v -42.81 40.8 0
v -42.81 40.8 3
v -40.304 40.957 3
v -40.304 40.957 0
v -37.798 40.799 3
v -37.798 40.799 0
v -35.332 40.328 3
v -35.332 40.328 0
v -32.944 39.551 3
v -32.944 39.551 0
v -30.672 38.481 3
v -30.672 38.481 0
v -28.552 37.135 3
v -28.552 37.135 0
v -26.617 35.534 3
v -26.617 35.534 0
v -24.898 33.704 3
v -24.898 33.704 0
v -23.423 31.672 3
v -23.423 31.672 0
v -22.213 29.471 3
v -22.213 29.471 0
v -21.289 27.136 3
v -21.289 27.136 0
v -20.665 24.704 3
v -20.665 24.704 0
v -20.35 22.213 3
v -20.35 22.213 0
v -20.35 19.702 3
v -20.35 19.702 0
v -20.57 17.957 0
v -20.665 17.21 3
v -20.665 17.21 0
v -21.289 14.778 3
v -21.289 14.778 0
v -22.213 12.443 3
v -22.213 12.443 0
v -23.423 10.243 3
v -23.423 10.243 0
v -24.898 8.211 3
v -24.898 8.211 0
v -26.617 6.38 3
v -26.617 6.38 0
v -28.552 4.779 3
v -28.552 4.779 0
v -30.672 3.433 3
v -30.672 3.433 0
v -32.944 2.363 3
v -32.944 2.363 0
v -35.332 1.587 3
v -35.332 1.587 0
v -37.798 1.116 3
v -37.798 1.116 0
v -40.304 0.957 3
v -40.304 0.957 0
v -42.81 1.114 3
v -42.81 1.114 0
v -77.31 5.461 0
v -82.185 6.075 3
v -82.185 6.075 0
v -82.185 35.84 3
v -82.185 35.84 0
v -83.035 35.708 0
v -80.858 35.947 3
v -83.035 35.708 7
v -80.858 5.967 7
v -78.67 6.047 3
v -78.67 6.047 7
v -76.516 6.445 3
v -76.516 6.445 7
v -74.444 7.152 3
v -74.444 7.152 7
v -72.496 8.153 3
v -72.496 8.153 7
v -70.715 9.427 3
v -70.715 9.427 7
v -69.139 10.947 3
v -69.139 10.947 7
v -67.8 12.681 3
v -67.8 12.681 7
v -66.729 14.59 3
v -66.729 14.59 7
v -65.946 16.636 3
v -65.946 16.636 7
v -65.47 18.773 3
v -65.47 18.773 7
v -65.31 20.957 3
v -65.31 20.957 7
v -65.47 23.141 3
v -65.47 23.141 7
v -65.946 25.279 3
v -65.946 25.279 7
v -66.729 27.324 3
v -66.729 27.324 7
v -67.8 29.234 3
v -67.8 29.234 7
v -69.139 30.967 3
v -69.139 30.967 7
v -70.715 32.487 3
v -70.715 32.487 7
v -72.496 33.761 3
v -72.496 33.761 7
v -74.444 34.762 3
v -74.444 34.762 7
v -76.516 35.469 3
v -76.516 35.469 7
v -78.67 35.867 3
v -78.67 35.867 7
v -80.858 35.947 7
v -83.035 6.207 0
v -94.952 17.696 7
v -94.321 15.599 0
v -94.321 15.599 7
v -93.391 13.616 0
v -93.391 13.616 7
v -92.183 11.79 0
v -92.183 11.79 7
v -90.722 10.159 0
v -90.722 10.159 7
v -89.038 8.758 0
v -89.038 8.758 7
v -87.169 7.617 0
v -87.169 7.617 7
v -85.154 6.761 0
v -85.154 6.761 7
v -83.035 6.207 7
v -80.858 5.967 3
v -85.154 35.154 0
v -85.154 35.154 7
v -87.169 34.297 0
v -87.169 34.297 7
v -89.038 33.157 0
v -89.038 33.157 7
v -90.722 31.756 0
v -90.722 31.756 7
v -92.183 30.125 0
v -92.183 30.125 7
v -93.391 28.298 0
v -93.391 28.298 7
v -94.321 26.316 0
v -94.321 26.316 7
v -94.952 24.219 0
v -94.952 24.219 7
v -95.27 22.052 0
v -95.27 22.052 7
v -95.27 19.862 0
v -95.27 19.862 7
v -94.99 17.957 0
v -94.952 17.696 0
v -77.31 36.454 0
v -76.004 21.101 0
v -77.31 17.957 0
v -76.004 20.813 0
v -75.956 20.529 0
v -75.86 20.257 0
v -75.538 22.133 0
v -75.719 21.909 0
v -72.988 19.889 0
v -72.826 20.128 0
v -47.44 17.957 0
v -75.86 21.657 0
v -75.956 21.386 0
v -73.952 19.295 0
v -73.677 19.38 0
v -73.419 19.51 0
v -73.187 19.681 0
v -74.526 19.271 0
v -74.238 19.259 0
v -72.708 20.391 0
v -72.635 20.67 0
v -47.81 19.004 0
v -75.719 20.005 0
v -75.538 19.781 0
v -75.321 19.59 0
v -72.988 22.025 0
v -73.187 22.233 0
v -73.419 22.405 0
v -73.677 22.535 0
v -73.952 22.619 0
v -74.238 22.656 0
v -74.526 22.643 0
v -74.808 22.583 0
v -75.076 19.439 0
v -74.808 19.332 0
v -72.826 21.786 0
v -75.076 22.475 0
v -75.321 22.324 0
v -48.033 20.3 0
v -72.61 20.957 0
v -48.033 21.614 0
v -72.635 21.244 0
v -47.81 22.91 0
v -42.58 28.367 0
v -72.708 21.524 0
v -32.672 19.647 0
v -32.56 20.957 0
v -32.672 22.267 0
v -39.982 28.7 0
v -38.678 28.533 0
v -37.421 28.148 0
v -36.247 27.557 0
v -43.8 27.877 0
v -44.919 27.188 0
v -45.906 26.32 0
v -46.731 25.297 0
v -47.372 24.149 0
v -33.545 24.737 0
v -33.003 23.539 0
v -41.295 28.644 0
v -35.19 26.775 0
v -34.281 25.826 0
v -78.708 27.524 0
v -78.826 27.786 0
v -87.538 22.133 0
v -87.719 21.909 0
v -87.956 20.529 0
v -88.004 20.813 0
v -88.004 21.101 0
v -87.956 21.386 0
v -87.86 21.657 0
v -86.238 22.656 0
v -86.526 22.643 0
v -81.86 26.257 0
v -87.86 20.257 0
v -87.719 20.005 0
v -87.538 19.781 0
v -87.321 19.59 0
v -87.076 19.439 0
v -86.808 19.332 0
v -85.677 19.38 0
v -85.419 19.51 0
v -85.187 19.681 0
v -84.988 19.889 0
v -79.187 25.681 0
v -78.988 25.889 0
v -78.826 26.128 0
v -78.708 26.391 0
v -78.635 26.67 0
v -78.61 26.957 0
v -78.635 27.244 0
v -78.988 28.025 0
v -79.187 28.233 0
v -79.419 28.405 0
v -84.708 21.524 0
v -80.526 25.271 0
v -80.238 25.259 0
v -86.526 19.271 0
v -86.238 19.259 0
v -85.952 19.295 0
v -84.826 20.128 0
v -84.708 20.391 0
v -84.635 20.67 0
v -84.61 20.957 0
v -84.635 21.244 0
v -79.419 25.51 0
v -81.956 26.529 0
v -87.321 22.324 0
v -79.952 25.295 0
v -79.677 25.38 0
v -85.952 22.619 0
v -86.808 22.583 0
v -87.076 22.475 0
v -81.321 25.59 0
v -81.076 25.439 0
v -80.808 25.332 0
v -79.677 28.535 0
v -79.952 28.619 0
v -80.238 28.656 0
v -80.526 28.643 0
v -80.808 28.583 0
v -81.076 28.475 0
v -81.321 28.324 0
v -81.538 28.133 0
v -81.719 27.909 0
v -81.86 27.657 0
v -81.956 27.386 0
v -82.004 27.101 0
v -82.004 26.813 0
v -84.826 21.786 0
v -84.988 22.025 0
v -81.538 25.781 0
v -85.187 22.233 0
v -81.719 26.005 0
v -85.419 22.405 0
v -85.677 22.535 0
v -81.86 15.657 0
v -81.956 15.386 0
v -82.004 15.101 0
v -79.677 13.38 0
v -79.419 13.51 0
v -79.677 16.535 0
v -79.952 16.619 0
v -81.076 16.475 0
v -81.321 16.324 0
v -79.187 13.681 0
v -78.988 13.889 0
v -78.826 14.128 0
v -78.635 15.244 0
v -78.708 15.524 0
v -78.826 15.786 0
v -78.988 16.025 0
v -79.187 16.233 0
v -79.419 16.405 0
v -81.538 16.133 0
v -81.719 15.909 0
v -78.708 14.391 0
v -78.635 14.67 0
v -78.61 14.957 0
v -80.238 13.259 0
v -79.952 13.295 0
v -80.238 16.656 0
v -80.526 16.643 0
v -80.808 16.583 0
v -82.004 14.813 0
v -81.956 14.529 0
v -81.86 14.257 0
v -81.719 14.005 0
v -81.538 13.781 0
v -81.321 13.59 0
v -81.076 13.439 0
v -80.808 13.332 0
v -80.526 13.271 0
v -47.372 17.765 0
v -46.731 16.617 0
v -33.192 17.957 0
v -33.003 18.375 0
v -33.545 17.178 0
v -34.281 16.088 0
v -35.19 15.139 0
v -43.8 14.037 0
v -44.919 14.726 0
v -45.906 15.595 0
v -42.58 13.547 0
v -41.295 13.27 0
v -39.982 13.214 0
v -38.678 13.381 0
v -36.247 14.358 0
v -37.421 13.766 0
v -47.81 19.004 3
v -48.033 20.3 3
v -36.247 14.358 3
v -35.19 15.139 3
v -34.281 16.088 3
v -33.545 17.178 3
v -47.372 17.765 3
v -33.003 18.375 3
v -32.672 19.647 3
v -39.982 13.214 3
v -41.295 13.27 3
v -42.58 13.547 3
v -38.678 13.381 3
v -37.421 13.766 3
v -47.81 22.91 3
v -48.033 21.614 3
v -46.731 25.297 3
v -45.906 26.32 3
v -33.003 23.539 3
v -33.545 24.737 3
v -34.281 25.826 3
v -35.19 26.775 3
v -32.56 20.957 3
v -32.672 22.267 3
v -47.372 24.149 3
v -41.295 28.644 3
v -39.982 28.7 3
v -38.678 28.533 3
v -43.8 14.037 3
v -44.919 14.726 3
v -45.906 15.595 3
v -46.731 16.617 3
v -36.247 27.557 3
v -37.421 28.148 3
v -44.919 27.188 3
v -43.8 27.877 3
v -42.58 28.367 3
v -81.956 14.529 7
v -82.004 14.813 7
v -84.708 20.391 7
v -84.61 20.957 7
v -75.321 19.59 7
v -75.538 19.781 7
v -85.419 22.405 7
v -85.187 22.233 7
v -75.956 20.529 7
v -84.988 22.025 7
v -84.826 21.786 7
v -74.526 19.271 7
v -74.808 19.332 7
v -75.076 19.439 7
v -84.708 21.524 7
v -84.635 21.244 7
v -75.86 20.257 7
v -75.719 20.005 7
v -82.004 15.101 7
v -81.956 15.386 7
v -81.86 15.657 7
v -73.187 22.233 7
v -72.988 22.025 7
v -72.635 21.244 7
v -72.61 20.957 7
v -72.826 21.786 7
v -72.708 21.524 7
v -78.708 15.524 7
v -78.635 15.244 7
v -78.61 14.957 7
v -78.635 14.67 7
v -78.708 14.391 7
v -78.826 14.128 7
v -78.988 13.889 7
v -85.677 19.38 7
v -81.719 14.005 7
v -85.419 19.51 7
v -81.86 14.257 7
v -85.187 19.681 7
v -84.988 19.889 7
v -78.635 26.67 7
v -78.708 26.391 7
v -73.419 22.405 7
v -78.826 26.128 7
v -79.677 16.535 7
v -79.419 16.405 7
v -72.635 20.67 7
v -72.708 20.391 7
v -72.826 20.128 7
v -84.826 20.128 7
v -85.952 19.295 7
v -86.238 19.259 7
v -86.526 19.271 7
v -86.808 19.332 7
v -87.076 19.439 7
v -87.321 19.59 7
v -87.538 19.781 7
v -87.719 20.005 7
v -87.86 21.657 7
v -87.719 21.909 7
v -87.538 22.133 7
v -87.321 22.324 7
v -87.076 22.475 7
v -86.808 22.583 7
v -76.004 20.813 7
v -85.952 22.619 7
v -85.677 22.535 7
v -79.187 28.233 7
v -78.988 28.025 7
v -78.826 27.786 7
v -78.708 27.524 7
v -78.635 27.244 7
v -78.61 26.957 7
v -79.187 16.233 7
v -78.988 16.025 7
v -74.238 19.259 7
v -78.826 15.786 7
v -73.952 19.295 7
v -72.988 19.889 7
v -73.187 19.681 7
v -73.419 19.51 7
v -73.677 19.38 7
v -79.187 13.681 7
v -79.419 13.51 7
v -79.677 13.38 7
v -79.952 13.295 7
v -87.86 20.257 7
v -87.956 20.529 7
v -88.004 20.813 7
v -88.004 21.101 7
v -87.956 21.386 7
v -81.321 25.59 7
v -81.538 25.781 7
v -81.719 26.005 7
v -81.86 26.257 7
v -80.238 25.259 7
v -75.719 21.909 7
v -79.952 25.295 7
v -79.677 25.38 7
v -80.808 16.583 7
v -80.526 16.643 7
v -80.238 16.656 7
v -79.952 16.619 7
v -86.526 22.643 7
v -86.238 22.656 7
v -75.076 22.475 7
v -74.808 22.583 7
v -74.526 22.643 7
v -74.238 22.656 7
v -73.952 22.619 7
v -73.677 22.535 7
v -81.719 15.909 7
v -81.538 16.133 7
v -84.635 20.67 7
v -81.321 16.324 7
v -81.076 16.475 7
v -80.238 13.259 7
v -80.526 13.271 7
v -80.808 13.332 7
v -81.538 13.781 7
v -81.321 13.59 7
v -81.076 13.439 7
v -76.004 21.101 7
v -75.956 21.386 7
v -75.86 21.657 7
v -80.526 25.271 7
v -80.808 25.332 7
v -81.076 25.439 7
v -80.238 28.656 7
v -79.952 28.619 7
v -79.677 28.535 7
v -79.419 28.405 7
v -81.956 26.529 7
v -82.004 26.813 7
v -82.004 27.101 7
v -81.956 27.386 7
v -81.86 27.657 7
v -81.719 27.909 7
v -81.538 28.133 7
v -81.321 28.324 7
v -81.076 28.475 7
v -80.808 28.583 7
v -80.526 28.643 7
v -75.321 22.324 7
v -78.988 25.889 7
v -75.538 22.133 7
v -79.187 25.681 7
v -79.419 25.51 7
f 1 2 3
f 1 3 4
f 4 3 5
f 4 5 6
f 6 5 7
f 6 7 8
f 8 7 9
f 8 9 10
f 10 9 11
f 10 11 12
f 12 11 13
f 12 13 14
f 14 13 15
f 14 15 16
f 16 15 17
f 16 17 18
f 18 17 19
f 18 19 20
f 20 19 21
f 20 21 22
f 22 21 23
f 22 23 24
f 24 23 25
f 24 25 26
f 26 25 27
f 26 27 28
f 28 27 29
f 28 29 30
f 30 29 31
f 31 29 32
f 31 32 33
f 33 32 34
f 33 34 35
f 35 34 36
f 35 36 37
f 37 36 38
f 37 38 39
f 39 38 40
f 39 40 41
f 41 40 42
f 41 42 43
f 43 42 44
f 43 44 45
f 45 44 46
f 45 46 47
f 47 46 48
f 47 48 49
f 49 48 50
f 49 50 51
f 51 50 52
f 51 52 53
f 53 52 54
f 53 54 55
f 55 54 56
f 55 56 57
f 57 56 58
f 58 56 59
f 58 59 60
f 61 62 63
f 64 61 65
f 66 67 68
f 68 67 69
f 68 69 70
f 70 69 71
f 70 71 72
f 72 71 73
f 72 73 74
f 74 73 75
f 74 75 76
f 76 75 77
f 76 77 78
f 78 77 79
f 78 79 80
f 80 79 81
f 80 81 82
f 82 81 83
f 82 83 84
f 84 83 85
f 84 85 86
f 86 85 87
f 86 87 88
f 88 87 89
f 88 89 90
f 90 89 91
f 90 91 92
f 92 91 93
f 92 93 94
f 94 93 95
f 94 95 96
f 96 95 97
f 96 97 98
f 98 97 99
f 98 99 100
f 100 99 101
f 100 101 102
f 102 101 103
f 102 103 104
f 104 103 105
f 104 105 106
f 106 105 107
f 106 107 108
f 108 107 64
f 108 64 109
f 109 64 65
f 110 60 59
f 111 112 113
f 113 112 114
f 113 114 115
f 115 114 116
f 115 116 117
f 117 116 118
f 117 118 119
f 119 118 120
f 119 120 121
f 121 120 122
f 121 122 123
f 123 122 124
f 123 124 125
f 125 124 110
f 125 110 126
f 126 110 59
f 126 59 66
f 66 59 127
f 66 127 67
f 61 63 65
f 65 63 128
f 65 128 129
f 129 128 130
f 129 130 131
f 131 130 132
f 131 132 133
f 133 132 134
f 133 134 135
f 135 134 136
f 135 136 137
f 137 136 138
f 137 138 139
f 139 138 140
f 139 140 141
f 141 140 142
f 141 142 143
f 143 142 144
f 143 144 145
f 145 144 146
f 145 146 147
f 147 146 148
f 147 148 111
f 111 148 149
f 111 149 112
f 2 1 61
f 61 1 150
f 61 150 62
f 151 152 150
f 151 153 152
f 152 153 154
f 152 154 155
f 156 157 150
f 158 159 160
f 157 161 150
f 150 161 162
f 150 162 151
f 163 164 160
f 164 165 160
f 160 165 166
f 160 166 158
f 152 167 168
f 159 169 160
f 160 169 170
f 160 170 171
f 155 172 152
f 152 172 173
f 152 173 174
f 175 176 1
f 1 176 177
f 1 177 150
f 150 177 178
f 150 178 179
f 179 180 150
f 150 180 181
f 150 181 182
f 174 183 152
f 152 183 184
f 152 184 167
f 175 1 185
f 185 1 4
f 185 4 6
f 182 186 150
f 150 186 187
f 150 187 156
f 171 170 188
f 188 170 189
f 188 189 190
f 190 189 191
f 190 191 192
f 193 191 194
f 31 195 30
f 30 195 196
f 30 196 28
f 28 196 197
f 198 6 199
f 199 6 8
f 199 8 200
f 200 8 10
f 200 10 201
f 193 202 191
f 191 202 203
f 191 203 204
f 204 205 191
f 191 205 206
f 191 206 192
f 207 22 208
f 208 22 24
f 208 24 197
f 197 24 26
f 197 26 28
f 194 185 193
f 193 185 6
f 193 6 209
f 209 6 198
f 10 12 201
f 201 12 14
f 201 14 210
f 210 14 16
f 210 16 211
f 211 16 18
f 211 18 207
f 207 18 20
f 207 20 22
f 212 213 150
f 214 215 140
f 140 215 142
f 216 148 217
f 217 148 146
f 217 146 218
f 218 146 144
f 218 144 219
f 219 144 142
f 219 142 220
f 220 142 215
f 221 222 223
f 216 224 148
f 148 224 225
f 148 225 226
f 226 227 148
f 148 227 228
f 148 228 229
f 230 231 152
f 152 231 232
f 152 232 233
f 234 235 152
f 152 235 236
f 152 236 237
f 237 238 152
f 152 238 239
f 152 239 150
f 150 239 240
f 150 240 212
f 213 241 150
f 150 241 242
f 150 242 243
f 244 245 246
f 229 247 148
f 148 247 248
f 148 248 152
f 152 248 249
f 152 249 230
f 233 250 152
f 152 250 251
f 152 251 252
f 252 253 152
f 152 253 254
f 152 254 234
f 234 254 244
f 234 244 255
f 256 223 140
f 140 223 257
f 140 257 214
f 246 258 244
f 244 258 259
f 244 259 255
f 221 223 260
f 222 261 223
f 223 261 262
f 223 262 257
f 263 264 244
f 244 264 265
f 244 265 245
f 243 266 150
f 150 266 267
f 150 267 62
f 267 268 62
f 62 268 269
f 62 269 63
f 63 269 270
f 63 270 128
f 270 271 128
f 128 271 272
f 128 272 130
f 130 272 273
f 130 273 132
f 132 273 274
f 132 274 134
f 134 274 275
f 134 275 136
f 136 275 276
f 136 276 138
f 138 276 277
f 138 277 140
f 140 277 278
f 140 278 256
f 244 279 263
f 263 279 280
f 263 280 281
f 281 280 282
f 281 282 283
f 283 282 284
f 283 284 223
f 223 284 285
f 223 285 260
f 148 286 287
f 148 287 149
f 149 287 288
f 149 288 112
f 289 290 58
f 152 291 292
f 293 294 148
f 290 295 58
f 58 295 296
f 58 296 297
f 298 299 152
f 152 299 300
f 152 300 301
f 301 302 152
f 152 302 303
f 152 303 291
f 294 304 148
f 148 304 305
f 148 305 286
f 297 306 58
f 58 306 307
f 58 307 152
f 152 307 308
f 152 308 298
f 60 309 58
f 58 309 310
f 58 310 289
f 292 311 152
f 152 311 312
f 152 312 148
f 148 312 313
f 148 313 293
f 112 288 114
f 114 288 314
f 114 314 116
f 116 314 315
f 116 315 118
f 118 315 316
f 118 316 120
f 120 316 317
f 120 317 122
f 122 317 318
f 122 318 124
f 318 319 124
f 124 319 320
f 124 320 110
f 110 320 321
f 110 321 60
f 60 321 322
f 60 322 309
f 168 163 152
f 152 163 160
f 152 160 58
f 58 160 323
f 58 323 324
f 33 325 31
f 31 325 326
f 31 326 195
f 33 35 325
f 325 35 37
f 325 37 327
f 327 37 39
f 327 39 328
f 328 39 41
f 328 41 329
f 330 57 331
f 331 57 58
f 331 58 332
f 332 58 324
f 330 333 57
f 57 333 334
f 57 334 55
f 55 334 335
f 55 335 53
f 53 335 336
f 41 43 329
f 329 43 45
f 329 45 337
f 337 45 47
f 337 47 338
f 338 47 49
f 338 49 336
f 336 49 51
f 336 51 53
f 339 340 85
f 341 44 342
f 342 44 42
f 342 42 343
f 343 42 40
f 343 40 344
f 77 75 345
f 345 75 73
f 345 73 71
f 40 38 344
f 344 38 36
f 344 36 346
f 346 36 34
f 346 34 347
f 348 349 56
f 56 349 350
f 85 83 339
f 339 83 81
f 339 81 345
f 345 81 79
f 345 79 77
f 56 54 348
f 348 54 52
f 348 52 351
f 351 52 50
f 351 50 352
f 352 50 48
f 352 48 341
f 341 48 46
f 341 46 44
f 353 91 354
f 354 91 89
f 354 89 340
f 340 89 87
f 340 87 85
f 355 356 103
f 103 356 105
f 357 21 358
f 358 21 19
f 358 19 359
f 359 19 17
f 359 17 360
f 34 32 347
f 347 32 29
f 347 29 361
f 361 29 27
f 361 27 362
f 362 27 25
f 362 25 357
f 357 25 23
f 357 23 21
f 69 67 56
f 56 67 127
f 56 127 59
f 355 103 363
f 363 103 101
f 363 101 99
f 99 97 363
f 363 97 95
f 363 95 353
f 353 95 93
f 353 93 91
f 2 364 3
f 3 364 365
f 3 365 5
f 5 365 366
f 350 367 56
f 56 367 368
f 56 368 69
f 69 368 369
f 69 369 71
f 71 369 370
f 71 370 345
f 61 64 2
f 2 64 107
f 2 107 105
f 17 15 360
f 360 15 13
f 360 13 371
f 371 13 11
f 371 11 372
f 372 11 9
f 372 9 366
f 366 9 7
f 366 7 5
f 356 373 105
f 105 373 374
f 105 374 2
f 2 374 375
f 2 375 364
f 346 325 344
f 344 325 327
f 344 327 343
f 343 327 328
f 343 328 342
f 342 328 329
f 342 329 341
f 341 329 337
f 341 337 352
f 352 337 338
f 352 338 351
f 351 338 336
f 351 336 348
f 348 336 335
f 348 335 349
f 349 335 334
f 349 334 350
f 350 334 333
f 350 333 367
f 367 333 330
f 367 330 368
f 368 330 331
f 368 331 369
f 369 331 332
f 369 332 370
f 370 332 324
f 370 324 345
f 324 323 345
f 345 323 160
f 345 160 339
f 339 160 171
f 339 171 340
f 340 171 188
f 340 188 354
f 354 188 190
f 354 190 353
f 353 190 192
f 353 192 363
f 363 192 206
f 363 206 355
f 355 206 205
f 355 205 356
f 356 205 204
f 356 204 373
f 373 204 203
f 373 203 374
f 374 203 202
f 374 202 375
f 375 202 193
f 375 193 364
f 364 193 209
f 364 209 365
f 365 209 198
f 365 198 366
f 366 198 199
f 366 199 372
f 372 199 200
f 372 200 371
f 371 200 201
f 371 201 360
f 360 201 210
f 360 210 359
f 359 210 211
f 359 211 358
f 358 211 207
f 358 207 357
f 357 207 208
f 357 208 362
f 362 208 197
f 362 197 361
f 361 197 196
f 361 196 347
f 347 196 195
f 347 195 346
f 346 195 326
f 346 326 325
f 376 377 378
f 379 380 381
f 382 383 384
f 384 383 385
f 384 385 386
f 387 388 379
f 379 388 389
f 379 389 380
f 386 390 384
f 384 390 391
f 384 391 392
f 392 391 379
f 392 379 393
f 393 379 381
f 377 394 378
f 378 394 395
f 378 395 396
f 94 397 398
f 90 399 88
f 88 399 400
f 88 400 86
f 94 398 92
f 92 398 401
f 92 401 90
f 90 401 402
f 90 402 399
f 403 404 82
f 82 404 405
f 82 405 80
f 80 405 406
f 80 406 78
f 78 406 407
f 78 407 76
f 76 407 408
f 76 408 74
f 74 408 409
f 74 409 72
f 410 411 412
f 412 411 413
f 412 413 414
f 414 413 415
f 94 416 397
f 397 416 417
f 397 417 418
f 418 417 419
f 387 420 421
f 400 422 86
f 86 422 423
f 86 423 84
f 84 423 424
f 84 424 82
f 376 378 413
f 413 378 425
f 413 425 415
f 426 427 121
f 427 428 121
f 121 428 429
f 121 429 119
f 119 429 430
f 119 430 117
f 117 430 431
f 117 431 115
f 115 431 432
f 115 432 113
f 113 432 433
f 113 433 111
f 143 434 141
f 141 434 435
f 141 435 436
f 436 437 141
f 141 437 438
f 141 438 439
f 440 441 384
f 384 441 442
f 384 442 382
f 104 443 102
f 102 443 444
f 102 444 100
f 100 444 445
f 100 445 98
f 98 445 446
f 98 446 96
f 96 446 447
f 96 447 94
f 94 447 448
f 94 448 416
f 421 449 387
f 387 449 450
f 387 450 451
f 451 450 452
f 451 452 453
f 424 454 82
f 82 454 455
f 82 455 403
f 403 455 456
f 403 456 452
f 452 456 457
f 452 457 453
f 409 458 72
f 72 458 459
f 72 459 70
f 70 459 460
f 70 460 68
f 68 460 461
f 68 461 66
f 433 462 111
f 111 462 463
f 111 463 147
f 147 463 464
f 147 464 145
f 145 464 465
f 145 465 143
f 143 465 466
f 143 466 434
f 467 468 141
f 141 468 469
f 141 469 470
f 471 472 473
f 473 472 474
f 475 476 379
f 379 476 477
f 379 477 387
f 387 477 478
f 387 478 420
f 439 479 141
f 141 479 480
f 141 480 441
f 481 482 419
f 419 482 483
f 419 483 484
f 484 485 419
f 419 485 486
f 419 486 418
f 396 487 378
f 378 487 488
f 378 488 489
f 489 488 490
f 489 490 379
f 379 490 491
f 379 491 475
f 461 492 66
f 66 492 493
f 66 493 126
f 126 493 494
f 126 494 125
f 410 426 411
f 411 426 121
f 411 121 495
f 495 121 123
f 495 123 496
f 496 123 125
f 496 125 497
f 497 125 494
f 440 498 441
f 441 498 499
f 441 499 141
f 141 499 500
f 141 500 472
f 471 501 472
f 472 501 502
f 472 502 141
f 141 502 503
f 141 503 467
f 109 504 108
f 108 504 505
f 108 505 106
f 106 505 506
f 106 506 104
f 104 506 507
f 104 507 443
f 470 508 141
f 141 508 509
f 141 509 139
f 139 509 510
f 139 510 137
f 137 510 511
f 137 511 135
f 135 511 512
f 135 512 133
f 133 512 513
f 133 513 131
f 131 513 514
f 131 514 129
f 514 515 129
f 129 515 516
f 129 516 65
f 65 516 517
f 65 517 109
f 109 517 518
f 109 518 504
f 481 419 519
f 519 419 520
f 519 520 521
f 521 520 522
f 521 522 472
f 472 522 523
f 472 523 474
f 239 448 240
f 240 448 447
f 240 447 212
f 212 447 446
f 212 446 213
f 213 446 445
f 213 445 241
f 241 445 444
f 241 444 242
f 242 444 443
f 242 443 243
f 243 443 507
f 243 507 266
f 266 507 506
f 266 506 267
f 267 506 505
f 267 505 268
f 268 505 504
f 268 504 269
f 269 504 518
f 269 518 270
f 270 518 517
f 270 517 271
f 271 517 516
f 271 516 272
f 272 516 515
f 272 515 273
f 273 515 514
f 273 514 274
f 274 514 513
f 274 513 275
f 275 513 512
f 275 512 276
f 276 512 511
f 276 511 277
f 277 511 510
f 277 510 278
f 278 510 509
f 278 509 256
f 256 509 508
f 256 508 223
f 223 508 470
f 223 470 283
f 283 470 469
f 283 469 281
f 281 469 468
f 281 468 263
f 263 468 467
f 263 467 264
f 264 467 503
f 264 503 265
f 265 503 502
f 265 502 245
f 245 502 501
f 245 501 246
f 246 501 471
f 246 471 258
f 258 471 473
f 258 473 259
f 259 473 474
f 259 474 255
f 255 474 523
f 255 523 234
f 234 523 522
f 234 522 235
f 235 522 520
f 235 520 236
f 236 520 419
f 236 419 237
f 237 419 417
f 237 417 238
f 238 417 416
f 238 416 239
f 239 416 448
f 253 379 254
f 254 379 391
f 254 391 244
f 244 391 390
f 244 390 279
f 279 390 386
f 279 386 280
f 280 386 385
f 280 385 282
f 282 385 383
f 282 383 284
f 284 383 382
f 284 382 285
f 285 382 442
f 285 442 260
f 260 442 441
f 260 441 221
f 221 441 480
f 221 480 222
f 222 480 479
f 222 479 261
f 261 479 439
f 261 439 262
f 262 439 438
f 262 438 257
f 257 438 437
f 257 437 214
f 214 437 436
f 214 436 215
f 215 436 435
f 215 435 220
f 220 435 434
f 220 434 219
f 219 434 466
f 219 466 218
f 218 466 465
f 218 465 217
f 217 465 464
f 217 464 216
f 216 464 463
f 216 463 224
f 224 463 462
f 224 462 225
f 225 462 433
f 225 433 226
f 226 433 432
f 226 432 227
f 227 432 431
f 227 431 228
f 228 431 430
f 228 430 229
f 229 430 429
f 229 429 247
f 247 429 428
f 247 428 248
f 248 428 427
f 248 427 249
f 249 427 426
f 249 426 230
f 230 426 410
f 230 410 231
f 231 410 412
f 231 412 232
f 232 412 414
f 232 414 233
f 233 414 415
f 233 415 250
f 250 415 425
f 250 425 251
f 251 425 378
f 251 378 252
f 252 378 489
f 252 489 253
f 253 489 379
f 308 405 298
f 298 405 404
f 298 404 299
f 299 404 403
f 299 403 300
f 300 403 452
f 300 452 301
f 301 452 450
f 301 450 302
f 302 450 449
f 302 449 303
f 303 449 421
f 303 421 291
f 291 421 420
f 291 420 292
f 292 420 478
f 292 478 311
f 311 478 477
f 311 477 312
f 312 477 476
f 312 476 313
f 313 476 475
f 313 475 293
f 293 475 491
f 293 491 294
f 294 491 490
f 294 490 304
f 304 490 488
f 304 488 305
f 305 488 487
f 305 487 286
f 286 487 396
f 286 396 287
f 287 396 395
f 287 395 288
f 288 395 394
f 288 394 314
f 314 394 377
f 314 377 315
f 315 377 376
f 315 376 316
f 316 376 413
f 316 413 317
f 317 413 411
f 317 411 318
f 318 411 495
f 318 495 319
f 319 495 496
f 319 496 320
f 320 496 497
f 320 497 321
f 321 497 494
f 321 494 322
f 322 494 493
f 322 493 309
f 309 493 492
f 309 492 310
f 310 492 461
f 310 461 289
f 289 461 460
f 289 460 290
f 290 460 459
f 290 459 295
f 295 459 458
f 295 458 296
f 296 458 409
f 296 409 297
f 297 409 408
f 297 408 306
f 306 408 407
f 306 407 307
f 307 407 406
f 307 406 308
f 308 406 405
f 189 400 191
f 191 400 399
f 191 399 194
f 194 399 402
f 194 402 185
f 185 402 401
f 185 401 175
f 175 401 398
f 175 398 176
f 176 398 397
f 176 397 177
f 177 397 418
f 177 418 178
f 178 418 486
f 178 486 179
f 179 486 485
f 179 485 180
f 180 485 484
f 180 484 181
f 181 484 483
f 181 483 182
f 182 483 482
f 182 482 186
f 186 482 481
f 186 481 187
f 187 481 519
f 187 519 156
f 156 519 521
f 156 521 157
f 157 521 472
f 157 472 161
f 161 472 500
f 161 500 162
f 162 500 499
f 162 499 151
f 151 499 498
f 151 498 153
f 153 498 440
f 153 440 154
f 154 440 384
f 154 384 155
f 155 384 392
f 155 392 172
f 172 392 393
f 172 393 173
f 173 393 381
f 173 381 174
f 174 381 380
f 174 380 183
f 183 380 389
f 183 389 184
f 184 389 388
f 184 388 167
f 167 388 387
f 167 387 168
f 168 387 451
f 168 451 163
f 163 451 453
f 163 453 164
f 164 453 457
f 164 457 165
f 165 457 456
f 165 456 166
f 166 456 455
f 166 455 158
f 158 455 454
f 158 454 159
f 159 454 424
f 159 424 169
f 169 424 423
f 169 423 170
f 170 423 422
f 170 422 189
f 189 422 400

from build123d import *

# Parameters (mm, degrees)
SKETCH1_R               = 7.75
BOSS_EXTRUDE1_DEPTH     = 3
BOSS_EXTRUDE2_START     = 4
SKETCH2_R               = 15
BOSS_EXTRUDE2_DEPTH     = 4
CUT_EXTRUDE1_DEPTH      = 104.81508538
CUT_EXTRUDE1_DEPTH_BACK = 104.81508538
SKETCH2_3_R             = 1.7


with BuildPart() as part:
    # Sketch1 → Boss-Extrude1 (new body)
    with BuildSketch(Plane.XY.offset(3)):
        with BuildLine():
            Line((-42.810452402, 40.800302889), (-82.185452402, 35.839519181))
            ThreePointArc((-82.185452402, 35.839519181), (-95.310452402, 20.957168056), (-82.185452402, 6.074816932))
            Line((-82.185452402, 6.074816932), (-42.810452402, 1.114033223))
            ThreePointArc((-42.810452402, 1.114033223), (-20.310452402, 20.957168056), (-42.810452402, 40.800302889))
        make_face()
        with Locations((-40.310452402, 20.957168056)):
            Circle(SKETCH1_R, mode=Mode.SUBTRACT)
    extrude(amount=-BOSS_EXTRUDE1_DEPTH)

    # Sketch2 → Boss-Extrude2 (add)
    with BuildSketch(Plane.XY.offset(3).offset(BOSS_EXTRUDE2_START)):
        with Locations((-80.310452402, 20.957168056)):
            Circle(SKETCH2_R)
    extrude(amount=-BOSS_EXTRUDE2_DEPTH)

    # Sketch2<3> → Cut-Extrude1 (cut, two sides: drawn at the far end of the back side and taken through both)
    with BuildSketch(Plane.XY.offset(3).offset(-CUT_EXTRUDE1_DEPTH_BACK)):
        with Locations((-86.310452402, 20.957168056)):
            Circle(SKETCH2_3_R)
        with Locations((-80.310452402, 26.957168056)):
            Circle(SKETCH2_3_R)
        with Locations((-74.310452402, 20.957168056)):
            Circle(SKETCH2_3_R)
        with Locations((-80.310452402, 14.957168056)):
            Circle(SKETCH2_3_R)
    extrude(amount=CUT_EXTRUDE1_DEPTH + CUT_EXTRUDE1_DEPTH_BACK, mode=Mode.SUBTRACT)


solid = part.part
